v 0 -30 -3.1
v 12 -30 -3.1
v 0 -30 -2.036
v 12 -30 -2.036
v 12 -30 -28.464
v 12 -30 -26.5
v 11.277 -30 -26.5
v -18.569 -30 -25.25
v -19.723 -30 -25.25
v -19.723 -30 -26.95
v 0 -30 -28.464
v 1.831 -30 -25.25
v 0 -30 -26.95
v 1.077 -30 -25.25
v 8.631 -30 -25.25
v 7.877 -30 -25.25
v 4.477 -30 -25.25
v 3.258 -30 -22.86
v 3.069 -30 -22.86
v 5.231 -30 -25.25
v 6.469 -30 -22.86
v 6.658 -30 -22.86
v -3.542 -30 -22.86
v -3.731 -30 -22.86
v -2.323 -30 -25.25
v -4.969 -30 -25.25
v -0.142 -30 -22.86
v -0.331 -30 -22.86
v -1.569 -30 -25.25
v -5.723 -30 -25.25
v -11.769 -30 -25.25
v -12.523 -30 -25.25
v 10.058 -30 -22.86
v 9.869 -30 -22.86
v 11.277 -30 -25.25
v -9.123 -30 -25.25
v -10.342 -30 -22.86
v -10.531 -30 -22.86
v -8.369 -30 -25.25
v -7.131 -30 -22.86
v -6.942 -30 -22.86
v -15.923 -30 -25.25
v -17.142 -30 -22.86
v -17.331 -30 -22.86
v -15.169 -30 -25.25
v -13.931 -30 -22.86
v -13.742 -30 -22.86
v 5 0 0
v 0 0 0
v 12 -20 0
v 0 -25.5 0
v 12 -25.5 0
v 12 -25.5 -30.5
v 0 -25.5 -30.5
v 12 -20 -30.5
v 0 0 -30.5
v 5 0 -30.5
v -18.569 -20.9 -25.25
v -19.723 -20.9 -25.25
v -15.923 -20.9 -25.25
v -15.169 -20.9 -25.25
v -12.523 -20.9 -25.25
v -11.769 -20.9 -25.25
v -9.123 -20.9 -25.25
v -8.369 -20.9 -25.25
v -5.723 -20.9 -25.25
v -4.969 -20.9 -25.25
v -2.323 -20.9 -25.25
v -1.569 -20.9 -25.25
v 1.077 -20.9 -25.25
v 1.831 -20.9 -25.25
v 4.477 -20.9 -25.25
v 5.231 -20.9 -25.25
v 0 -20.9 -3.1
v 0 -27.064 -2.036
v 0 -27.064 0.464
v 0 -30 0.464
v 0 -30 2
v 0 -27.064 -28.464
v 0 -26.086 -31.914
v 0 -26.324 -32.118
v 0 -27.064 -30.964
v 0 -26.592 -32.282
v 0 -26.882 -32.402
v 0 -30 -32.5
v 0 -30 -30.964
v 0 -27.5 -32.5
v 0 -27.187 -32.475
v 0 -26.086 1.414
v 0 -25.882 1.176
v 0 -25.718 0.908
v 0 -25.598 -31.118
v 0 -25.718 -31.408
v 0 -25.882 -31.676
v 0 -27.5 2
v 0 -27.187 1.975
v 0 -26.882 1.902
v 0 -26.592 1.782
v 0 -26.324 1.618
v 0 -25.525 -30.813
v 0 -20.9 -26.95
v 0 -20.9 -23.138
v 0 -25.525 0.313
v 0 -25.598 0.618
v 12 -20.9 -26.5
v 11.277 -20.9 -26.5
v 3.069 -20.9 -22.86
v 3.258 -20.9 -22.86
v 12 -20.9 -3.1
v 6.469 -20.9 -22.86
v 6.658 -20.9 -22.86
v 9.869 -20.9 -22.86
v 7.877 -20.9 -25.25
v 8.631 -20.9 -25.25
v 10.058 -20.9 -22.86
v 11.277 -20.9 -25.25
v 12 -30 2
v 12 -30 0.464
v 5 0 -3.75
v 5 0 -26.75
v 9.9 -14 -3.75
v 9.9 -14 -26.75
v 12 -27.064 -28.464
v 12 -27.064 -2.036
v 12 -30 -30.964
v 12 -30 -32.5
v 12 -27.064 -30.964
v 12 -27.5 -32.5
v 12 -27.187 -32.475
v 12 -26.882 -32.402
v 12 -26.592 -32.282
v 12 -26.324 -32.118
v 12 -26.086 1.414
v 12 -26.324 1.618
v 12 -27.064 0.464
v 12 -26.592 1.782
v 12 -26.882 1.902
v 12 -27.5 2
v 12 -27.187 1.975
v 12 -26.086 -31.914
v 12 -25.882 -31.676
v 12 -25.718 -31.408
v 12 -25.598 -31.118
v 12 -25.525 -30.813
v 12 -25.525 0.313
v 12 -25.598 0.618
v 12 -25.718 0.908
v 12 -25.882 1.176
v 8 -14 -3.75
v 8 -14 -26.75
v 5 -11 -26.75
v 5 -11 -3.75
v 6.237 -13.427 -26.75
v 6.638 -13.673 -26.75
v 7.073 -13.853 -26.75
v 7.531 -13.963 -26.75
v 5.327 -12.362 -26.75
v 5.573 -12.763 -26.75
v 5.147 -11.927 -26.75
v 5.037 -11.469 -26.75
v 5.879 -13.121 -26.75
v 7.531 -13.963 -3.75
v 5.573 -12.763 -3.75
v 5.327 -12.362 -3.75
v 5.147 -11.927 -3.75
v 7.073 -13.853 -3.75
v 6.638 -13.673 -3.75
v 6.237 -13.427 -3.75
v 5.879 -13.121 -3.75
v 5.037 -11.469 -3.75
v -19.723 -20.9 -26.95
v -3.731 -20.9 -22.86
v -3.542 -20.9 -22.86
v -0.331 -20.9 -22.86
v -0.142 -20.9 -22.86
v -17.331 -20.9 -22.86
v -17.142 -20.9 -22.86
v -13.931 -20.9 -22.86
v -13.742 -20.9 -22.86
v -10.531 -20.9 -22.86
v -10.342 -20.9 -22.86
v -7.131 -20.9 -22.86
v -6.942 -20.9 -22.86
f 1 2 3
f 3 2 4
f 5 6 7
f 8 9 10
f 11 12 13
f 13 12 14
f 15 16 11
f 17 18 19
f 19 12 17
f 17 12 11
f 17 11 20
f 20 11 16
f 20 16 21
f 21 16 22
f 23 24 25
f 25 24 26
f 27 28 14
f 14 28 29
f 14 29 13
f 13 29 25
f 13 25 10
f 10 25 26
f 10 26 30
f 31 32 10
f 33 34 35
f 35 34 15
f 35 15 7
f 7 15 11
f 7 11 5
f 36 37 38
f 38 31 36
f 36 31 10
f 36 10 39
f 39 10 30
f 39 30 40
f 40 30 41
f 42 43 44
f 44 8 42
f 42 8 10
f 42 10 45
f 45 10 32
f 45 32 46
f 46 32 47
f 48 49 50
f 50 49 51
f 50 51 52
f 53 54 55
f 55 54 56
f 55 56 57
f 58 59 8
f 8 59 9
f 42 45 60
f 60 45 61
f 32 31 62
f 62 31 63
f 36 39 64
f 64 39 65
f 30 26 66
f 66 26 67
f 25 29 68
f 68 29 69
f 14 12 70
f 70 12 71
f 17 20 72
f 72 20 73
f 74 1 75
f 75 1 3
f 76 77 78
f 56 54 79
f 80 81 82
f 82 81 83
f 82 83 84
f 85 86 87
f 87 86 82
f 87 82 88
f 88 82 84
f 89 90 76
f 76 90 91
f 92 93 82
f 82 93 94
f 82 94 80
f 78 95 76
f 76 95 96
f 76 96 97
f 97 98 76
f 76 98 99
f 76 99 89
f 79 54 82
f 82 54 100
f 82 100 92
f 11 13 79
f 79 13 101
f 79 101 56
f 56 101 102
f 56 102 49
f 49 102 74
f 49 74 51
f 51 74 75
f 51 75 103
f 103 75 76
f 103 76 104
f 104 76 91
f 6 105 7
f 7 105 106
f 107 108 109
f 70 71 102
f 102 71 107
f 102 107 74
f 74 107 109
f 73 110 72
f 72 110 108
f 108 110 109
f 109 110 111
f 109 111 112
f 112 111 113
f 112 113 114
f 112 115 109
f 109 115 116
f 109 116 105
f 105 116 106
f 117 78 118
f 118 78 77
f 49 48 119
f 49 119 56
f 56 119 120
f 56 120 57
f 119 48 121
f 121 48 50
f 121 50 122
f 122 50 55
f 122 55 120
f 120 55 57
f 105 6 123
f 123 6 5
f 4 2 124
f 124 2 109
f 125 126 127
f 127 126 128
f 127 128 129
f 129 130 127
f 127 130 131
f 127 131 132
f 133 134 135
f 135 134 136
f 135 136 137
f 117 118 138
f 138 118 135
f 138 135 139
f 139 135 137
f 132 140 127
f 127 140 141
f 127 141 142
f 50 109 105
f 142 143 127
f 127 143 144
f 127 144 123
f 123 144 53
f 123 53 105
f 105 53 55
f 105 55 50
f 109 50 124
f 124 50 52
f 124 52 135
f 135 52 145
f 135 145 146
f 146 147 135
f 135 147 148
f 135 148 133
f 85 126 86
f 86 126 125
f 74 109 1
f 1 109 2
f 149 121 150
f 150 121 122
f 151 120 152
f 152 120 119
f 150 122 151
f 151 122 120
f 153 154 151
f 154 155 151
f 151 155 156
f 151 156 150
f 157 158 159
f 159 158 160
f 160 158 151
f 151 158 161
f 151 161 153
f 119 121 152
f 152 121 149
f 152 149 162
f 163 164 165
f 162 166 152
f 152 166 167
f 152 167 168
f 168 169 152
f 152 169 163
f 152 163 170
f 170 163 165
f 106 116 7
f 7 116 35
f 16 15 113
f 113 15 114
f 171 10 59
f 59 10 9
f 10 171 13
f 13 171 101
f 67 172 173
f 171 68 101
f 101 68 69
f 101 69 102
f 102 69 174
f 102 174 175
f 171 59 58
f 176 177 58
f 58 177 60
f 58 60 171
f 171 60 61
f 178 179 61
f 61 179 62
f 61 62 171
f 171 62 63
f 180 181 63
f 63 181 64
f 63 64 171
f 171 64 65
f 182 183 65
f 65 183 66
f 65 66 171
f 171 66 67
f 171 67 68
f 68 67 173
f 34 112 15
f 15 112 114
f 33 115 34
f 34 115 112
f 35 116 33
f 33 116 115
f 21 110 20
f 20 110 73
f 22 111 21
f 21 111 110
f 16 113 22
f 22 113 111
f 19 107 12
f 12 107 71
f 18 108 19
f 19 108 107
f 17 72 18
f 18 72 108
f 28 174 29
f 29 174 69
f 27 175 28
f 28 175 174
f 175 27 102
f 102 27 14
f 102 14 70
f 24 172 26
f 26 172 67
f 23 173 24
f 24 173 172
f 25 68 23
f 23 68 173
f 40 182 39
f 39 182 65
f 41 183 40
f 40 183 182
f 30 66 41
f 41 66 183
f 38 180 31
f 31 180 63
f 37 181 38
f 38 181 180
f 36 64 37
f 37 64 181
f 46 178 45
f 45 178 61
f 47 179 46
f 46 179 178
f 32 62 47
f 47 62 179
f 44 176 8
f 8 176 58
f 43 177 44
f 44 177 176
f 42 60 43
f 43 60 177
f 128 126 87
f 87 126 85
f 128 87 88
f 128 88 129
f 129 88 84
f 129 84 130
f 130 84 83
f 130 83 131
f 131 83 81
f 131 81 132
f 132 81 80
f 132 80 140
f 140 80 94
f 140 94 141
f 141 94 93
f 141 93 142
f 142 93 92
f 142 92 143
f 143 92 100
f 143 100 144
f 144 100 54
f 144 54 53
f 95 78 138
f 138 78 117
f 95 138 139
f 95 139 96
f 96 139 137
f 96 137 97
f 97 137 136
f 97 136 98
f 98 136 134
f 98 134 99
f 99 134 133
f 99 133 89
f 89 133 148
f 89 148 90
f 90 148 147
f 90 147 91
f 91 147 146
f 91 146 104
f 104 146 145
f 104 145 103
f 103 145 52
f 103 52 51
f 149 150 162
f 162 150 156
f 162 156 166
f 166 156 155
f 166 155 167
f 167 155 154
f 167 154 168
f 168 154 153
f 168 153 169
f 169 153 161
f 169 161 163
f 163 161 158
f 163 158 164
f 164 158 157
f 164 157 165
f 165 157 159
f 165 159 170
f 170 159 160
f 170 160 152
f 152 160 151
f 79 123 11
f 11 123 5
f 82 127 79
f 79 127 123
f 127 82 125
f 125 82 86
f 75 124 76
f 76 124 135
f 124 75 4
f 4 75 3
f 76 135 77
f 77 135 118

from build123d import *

# Parameters (mm, degrees)
BOSS_EXTRUDE1_DEPTH = 30.5
SKETCH4_W           = 23.4
SKETCH4_H           = 10
CUT_EXTRUDE2_DEPTH  = 25
CUT_EXTRUDE4_DEPTH  = 11.5
SKETCH7_W           = 31
SKETCH7_H           = 1.7
BOSS_EXTRUDE3_DEPTH = 9.100050305
BOSS_EXTRUDE4_DEPTH = 9.100050305
LPATTERN1_COUNT     = 9
LPATTERN1_PITCH     = 3.4
SKETCH11_W          = 12
SKETCH11_H          = 4.5
BOSS_EXTRUDE5_DEPTH = 2
FILLET1_R           = 2
FILLET2_R           = 2
FILLET5_R           = 3
SKETCH12_W          = 2.5
SKETCH12_H          = 3.5
CUT_EXTRUDE5_DEPTH  = 12


with BuildPart() as part:
    # Sketch1 → Boss-Extrude1 (new body)
    with BuildSketch(Plane.XY):
        Polygon((0, 0), (0, -30), (12, -30), (12, -20), (5, 0), align=None)
    extrude(amount=-BOSS_EXTRUDE1_DEPTH)

    # Sketch4 → Cut-Extrude2 (cut)
    with BuildSketch(Plane.ZY):
        with Locations((-14.8, -25.899949695)):
            Rectangle(SKETCH4_W, SKETCH4_H)
    extrude(amount=-CUT_EXTRUDE2_DEPTH, mode=Mode.SUBTRACT)

    # Sketch6 → Cut-Extrude4 (cut, symmetric)
    with BuildSketch(Plane.XY.offset(-15.25)):
        Polygon((5, 0), (5, -14), (9.9, -14), align=None)
    extrude(amount=CUT_EXTRUDE4_DEPTH, both=True, mode=Mode.SUBTRACT)

    # Sketch7 → Boss-Extrude3 (add)
    with BuildSketch(Plane(origin=(0, -30, 0), x_dir=(1, 0, 0), z_dir=(0, 1, 0))):
        with Locations((-4.2231607, 26.1)):
            Rectangle(SKETCH7_W, SKETCH7_H)
    extrude(amount=BOSS_EXTRUDE3_DEPTH)

    # Sketch10 → Boss-Extrude4 (add)
    with BuildSketch(Plane(origin=(0, -20.899949695, 0), x_dir=(1, 0, 0), z_dir=(0, 1, 0))):
        Polygon((11.2768393, 25.25), (10.057972835, 22.860002615), (9.869194152, 22.860002615), (8.630940097, 25.25), align=None)
    boss_extrude4 = extrude(amount=-BOSS_EXTRUDE4_DEPTH)

    # LPattern1: Boss-Extrude4 ×9
    with Locations(*[(-i * LPATTERN1_PITCH, 0, 0) for i in range(1, LPATTERN1_COUNT)]):
        add(boss_extrude4)

    # Sketch11 → Boss-Extrude5 (add)
    with BuildSketch(Plane(origin=(0, 0, -30.5), x_dir=(-1, 0, 0), z_dir=(0, 0, -1))):
        with Locations((-6, -27.75)):
            Rectangle(SKETCH11_W, SKETCH11_H)
    boss_extrude5 = extrude(amount=BOSS_EXTRUDE5_DEPTH)

    # Fillet1
    fillet1_edges = [part.edges().sort_by_distance(p)[0] for p in [
        (6, -25.5, -32.5),
    ]]
    fillet(fillet1_edges, radius=FILLET1_R - 0.0001)  # a hair under: the kernel refuses the full size

    # Mirror1: Boss-Extrude5 across plane
    add(boss_extrude5.mirror(Plane.XY.offset(-15.25)))

    # Fillet2
    fillet2_edges = [part.edges().sort_by_distance(p)[0] for p in [
        (6, -25.5, 2),
    ]]
    fillet(fillet2_edges, radius=FILLET2_R - 0.0001)  # a hair under: the kernel refuses the full size

    # Fillet5
    fillet5_edges = [part.edges().sort_by_distance(p)[0] for p in [
        (5, -14, -15.25),
    ]]
    fillet(fillet5_edges, radius=FILLET5_R)

    # Sketch12 → Cut-Extrude5 (cut)
    with BuildSketch(Plane.ZY):
        with Locations((-29.713851252, -28.814354386)):
            Rectangle(SKETCH12_W, SKETCH12_H)
        with Locations((-0.786148748, -28.814354386)):
            Rectangle(SKETCH12_W, SKETCH12_H)
    extrude(amount=-CUT_EXTRUDE5_DEPTH, mode=Mode.SUBTRACT)


solid = part.part
